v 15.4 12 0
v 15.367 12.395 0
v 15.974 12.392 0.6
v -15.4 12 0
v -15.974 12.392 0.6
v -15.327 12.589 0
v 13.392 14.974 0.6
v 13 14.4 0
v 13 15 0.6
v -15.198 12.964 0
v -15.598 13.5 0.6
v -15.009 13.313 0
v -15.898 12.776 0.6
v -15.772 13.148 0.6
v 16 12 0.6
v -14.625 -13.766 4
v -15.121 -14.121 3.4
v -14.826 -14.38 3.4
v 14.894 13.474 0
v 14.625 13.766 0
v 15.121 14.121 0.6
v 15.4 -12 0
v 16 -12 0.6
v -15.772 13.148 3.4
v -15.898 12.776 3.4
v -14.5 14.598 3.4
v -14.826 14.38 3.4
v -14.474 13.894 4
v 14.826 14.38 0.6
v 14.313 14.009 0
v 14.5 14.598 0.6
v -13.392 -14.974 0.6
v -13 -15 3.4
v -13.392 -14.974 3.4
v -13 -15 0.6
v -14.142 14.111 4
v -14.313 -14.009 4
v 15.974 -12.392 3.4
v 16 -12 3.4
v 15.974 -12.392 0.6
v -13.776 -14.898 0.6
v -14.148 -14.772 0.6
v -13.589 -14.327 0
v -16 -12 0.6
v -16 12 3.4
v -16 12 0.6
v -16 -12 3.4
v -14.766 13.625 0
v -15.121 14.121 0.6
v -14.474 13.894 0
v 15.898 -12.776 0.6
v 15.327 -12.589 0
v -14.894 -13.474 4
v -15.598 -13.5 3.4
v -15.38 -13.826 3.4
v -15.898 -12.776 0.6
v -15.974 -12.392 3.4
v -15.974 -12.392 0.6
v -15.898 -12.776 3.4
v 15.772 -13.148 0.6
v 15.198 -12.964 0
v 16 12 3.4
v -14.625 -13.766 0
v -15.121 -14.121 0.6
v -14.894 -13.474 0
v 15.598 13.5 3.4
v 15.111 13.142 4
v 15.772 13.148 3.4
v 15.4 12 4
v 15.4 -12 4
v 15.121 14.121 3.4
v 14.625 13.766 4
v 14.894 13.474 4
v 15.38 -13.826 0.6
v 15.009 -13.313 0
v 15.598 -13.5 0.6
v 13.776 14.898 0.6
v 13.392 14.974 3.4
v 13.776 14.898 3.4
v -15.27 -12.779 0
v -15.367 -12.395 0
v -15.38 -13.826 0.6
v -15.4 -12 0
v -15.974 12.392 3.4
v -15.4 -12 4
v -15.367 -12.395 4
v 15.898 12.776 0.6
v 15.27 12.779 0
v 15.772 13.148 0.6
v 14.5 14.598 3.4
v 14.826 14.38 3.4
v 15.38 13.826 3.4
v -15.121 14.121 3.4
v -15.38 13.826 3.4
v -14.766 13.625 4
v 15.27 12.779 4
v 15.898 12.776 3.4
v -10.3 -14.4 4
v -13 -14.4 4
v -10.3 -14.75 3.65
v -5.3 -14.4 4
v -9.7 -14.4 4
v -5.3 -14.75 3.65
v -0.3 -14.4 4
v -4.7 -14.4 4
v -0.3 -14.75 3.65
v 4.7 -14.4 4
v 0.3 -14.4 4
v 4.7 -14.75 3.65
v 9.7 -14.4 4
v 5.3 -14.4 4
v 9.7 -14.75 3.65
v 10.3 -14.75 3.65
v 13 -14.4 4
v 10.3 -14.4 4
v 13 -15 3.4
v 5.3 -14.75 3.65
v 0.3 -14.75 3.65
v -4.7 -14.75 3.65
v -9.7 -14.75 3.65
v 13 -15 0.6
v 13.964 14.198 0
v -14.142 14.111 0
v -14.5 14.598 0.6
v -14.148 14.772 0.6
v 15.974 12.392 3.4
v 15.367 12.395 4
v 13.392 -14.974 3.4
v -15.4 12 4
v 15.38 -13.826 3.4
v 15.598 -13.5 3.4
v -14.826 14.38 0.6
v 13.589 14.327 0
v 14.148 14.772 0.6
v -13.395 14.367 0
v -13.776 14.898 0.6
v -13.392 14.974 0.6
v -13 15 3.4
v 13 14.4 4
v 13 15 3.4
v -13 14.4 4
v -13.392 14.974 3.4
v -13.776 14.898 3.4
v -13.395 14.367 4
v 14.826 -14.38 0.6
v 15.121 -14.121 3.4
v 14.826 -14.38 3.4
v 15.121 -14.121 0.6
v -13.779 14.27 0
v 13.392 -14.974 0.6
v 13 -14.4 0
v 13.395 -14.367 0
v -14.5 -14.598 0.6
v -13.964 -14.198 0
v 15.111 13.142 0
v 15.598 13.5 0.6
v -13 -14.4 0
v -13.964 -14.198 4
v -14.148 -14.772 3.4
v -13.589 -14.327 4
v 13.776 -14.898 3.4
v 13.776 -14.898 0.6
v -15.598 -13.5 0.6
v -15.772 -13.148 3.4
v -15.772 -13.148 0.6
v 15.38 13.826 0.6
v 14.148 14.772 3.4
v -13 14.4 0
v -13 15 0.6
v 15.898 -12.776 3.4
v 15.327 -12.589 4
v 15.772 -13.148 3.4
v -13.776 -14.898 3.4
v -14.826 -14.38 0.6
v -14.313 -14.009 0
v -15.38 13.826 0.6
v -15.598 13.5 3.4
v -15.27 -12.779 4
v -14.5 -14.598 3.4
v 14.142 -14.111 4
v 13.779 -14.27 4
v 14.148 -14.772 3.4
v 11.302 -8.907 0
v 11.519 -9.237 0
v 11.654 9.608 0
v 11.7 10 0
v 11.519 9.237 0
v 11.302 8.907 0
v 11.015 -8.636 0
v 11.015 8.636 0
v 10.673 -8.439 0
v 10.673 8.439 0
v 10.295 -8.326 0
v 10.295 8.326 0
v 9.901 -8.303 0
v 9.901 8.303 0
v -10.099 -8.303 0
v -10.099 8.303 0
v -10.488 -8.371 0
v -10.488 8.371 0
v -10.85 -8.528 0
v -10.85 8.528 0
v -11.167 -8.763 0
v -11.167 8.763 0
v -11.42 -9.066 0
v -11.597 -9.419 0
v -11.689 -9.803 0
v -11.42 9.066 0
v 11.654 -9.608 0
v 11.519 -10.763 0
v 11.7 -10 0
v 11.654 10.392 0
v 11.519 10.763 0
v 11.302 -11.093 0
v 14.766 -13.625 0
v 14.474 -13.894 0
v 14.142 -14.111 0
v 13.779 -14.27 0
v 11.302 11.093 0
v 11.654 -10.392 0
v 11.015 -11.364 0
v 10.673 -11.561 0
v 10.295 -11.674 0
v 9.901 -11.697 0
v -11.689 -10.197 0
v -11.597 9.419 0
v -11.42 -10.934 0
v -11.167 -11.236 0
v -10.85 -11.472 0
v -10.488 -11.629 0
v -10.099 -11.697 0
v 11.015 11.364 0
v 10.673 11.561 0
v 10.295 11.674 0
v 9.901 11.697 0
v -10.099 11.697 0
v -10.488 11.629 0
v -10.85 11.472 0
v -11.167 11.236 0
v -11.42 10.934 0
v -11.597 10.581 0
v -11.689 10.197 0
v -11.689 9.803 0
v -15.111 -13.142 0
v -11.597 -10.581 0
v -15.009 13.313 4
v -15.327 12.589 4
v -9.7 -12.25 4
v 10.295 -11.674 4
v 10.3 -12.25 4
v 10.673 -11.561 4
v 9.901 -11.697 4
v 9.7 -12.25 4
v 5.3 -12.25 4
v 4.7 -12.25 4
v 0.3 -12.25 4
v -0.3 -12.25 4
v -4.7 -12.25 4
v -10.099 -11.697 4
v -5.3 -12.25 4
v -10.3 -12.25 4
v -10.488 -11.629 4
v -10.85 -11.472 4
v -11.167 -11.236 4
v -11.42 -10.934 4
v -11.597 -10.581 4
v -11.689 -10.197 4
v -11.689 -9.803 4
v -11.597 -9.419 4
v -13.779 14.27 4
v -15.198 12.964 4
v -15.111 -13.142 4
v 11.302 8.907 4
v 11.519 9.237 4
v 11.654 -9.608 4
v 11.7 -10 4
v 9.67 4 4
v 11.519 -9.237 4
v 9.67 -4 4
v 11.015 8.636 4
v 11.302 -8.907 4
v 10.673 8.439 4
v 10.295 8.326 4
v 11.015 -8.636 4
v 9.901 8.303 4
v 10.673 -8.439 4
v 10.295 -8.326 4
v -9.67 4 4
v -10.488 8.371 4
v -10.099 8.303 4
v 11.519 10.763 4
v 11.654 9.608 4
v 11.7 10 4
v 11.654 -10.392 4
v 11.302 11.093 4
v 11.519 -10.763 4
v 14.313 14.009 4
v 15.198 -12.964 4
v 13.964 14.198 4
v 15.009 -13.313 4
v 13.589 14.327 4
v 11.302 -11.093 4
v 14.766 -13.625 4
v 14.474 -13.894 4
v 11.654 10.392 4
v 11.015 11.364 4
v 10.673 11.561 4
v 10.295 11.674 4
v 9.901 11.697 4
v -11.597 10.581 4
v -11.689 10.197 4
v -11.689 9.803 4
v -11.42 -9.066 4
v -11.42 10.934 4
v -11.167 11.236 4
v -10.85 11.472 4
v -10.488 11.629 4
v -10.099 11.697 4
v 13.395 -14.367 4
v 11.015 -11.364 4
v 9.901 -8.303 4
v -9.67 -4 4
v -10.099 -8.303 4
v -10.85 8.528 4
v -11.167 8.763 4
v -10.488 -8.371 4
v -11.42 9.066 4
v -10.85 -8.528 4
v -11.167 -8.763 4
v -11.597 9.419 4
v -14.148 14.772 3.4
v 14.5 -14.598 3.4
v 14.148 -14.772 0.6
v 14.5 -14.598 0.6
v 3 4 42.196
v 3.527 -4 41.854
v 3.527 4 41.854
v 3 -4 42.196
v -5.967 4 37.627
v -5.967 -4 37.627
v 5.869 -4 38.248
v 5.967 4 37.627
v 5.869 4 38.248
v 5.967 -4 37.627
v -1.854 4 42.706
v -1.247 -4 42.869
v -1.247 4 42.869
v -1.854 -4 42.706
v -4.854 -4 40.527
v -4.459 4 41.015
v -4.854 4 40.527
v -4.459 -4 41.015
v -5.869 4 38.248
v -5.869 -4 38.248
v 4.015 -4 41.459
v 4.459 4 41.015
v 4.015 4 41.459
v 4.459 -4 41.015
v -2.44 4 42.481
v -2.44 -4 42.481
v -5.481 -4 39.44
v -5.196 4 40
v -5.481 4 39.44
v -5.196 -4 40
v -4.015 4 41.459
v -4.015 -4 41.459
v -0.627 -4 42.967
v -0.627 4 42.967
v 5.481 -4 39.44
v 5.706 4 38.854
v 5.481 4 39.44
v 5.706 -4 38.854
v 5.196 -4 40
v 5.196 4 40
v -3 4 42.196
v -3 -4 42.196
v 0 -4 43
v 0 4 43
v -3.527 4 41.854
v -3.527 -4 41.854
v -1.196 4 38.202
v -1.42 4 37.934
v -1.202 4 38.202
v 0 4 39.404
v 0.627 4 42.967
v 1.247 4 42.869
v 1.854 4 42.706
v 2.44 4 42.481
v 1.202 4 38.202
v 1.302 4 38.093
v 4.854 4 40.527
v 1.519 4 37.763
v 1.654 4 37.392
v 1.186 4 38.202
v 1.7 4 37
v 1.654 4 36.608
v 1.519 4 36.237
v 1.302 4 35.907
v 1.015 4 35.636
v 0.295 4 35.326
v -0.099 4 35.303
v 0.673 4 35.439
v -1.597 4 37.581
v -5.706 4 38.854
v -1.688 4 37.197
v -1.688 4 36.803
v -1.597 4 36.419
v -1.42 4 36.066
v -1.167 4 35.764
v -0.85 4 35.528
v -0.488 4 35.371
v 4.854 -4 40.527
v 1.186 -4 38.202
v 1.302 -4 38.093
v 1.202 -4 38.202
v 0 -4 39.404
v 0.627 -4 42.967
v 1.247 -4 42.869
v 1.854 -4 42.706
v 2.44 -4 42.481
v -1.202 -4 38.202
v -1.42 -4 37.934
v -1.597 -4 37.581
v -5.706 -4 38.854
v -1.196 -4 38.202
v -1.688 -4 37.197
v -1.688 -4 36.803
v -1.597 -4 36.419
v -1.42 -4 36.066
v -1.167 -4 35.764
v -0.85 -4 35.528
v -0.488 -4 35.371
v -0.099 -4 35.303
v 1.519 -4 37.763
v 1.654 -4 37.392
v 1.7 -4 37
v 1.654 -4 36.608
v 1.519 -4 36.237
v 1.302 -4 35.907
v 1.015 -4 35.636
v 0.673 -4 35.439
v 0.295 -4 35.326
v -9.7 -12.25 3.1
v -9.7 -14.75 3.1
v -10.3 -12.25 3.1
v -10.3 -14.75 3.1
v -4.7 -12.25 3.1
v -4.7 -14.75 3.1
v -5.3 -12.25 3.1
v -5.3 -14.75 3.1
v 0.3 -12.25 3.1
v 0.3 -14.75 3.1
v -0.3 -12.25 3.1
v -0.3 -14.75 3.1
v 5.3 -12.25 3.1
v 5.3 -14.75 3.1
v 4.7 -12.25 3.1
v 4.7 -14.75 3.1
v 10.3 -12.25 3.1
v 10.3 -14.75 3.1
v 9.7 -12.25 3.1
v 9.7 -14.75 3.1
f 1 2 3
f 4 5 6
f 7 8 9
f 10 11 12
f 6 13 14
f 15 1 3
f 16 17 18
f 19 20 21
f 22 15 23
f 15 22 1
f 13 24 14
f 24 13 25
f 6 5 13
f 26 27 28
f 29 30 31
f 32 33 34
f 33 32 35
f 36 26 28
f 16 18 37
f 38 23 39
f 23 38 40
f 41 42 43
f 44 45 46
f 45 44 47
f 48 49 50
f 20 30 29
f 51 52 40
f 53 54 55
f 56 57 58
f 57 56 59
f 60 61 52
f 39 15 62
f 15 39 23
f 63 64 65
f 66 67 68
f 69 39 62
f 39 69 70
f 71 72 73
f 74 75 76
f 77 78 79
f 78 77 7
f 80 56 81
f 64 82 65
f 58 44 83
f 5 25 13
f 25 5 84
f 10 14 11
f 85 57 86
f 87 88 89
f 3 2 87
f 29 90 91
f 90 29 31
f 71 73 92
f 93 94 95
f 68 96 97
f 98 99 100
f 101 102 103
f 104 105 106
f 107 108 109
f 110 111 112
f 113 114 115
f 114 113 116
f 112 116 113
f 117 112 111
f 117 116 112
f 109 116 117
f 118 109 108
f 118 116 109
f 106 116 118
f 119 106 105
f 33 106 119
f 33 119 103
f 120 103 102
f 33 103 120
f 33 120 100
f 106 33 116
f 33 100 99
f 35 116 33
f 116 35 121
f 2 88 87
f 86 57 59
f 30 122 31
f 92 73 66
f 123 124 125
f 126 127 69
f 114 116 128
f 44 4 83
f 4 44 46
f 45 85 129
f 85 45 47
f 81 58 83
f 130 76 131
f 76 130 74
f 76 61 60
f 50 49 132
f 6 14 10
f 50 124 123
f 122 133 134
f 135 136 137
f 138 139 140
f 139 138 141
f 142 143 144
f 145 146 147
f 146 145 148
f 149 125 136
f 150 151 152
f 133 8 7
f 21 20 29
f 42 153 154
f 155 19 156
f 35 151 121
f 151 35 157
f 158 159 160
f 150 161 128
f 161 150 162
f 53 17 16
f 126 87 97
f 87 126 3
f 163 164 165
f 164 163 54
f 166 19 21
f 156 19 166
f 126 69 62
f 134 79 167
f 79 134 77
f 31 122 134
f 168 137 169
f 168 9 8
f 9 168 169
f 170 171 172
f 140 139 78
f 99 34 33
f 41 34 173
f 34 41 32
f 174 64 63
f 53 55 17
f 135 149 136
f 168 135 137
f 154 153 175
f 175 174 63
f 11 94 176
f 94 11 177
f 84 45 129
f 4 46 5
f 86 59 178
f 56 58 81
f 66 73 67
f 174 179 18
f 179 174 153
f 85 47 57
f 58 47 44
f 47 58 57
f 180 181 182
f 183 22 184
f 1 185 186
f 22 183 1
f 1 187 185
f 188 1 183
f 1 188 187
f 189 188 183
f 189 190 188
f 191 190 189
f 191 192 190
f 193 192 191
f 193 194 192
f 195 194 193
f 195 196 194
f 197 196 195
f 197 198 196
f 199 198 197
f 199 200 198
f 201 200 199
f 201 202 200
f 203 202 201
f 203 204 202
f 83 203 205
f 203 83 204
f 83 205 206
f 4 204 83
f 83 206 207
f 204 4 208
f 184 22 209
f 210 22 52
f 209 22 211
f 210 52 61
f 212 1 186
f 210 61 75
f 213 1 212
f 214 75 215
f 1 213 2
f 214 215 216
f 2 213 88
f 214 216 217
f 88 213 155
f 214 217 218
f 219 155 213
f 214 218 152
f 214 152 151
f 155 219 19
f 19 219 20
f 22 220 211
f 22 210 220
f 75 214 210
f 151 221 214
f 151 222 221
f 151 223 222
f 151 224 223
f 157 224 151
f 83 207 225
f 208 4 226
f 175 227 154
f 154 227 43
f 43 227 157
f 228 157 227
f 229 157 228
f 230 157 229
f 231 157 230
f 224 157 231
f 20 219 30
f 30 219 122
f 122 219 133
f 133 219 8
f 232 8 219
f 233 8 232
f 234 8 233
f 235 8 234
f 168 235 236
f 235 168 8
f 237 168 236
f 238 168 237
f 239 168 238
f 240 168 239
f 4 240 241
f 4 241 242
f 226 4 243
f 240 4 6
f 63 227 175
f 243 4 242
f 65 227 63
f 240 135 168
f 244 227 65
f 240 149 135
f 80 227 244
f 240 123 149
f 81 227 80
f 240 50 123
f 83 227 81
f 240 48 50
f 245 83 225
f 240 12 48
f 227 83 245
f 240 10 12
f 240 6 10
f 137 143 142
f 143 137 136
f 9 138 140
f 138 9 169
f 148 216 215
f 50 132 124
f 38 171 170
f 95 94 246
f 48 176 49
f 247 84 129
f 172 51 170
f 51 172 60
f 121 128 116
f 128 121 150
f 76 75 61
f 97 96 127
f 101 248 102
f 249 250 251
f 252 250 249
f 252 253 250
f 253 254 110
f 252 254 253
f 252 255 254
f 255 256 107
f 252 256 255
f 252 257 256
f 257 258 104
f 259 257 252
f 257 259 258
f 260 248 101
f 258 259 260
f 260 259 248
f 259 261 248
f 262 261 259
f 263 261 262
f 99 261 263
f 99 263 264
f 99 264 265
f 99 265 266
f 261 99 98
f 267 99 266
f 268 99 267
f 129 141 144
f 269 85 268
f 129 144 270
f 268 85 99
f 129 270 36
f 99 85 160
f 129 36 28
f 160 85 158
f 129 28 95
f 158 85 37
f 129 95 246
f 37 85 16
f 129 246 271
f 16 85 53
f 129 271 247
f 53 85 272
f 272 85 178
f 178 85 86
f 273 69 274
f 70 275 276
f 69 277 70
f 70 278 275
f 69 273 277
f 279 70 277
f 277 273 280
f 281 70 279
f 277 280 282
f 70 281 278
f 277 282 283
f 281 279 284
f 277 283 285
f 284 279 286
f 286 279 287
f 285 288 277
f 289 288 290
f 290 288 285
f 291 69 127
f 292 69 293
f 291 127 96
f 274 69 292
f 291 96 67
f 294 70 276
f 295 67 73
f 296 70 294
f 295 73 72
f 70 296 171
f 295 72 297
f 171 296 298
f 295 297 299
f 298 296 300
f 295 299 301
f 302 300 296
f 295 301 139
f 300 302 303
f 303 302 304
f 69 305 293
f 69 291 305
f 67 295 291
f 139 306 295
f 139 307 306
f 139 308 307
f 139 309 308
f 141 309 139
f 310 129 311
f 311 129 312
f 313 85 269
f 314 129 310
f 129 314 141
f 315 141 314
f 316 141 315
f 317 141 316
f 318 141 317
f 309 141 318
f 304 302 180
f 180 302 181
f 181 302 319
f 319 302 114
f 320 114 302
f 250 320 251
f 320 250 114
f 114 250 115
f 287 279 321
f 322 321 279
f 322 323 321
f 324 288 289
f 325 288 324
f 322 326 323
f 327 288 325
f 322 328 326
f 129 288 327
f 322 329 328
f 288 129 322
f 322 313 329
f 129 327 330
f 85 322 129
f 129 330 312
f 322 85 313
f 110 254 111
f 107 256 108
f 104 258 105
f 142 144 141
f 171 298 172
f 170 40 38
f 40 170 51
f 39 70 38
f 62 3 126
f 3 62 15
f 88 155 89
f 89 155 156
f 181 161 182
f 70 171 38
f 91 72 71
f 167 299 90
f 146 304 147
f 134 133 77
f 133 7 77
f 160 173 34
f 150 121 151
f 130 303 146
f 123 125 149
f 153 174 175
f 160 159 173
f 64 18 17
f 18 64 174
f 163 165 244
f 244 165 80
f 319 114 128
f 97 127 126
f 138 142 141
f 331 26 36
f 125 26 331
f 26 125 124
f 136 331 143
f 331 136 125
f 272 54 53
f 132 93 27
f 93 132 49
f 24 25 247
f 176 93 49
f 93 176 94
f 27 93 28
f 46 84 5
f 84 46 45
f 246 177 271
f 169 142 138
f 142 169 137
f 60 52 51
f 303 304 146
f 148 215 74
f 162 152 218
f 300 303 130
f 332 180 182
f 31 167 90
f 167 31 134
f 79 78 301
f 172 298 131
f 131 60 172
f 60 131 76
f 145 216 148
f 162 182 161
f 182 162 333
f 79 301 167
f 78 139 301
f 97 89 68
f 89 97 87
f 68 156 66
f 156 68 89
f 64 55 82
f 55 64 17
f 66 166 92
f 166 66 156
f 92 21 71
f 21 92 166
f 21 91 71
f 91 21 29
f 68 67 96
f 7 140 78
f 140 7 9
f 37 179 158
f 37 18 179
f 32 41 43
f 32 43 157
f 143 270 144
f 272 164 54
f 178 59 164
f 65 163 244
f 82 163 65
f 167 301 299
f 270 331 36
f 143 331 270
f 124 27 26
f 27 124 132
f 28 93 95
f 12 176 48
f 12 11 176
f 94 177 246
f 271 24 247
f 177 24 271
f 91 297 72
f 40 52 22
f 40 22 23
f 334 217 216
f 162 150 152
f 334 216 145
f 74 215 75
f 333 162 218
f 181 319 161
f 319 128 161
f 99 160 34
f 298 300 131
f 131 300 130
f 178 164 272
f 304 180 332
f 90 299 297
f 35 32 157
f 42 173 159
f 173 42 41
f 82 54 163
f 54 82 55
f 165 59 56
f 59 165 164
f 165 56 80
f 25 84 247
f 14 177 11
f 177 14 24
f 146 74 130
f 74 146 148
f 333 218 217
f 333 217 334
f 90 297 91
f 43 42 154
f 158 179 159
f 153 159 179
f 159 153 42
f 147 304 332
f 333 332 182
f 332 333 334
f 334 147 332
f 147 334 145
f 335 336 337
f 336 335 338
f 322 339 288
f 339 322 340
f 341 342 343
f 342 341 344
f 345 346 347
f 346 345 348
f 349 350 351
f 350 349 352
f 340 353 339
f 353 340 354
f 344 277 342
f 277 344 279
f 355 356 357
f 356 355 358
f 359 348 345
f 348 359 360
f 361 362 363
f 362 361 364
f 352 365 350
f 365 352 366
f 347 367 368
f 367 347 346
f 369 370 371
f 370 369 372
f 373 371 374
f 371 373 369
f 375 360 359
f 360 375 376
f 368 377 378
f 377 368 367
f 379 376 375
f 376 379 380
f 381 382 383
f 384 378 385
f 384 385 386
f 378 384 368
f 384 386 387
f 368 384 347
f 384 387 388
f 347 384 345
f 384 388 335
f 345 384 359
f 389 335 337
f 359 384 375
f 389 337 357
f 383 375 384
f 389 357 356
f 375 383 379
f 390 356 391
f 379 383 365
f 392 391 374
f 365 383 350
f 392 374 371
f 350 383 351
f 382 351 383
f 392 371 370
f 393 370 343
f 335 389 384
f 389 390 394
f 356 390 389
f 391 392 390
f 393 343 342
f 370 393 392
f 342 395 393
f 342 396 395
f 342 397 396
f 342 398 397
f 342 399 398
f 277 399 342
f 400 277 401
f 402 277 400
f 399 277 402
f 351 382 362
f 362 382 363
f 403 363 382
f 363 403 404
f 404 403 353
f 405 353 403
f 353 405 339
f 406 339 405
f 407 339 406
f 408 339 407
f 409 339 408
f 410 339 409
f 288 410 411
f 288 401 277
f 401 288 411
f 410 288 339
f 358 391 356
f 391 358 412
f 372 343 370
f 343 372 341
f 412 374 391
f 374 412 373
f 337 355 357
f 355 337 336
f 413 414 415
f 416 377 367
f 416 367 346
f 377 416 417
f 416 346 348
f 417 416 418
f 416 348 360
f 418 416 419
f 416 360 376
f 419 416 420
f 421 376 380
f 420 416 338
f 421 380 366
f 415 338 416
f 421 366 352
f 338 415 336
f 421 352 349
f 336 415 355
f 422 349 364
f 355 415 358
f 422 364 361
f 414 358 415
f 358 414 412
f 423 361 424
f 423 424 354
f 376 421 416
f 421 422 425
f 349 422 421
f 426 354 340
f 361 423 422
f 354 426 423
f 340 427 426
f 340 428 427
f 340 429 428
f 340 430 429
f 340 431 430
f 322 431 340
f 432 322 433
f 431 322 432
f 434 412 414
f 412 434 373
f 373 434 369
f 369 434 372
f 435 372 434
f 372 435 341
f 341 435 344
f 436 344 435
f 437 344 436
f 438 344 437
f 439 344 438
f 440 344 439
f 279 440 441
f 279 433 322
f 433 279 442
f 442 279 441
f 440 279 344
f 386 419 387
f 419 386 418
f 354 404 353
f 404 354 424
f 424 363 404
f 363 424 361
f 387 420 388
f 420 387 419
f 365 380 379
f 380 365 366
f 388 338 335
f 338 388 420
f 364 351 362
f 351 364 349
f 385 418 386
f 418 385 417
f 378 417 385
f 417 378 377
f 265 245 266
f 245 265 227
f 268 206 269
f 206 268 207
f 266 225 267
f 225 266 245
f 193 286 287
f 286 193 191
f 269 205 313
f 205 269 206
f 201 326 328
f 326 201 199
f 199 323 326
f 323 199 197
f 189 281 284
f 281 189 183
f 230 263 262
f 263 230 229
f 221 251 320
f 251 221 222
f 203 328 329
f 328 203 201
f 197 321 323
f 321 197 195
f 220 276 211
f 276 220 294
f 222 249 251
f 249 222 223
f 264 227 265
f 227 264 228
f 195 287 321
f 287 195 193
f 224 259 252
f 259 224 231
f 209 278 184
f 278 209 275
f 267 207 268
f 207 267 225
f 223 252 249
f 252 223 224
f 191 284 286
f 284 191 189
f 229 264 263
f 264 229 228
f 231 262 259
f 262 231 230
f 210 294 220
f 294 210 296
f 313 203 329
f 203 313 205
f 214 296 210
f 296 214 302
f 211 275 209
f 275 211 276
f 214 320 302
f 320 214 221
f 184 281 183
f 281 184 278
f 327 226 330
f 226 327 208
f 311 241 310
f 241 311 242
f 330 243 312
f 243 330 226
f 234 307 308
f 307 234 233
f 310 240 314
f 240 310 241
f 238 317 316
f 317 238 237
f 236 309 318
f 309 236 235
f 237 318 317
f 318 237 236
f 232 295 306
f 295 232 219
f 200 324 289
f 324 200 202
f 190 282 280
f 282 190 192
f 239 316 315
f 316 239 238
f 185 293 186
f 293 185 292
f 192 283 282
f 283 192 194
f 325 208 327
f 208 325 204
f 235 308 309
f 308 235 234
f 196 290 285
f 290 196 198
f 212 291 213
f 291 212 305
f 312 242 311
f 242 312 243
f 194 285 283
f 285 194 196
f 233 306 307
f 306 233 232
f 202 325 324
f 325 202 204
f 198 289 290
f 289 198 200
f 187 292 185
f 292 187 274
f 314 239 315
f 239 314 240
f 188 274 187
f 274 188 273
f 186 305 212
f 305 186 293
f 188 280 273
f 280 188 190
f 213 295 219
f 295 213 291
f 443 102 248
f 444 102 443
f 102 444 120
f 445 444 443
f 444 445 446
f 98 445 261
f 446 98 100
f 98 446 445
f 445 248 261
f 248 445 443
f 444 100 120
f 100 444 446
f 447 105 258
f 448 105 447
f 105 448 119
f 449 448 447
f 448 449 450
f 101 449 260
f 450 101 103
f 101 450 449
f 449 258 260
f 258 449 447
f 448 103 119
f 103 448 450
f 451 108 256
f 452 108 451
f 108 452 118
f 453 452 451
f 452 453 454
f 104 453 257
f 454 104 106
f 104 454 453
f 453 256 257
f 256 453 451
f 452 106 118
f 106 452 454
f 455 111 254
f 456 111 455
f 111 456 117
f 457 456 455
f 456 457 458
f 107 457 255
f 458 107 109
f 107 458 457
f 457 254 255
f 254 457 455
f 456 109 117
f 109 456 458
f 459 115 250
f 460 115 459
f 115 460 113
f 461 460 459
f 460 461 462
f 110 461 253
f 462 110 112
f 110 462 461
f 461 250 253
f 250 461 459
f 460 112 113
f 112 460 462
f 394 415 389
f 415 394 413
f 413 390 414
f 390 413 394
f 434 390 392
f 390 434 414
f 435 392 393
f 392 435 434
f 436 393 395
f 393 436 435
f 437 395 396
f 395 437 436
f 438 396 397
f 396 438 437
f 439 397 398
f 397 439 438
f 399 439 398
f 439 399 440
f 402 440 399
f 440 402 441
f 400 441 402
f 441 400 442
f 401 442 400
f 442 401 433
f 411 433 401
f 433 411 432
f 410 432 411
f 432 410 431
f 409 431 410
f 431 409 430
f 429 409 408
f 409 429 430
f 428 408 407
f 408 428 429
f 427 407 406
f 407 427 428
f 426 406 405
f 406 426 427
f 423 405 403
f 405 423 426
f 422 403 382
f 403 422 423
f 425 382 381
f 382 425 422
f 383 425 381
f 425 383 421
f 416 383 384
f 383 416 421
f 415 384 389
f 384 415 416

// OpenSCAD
// file: ../../COMMON/stem_core.scad
// =====================================================================
//  stem_core.scad — shared geometry helpers for every STEM_KIT part.
// =====================================================================
include <../PARAMETERS/config.scad>
// =====================================================================

// ---------- rounded / chamfered prisms --------------------------------

// Rounded rectangle (2D), centred.
module rrect(size, r) {
    rr = min(r, min(size[0], size[1]) / 2 - 0.01);
    offset(r = rr) square([size[0] - 2 * rr, size[1] - 2 * rr], center = true);
}

// Box with rounded vertical edges, chamfered bottom edge (elephant-foot
// relief) and rounded-ish (chamfered) top edge. Sits on z = 0, centred XY.
module rbox(size, r = 2, top = edge_r, bottom = chamfer) {
    h = size[2];
    hull() {
        linear_extrude(0.01) rrect([size[0] - 2 * bottom, size[1] - 2 * bottom], max(r - bottom, 0.1));
        translate([0, 0, bottom]) linear_extrude(h - bottom - top) rrect([size[0], size[1]], r);
        translate([0, 0, h - 0.01]) linear_extrude(0.01) rrect([size[0] - 2 * top, size[1] - 2 * top], max(r - top, 0.1));
    }
}

// Cylinder with chamfered/rounded top and bottom edges (safe hubs, knobs).
module rcyl(d, h, top = edge_r, bottom = chamfer) {
    rotate_extrude() polygon([
        [0, 0], [d / 2 - bottom, 0], [d / 2, bottom],
        [d / 2, h - top], [d / 2 - top, h], [0, h]
    ]);
}

// Stadium (slot / rounded bar) 2D between two points on the X axis.
module stadium2d(len, w) {
    hull() { circle(d = w); translate([len, 0]) circle(d = w); }
}

// ---------- holes ------------------------------------------------------

// Vertical through hole with small top/bottom chamfers.
module vhole(d = grid_hole_d, h = 50, ch = 0.4) {
    translate([0, 0, -h / 2]) cylinder(d = d, h = h);
}

// Horizontal hole along +Y, printable without supports (teardrop tip up).
module teardrop_y(d, len, center = true) {
    translate([0, center ? -len / 2 : 0, 0]) rotate([-90, 0, 0])
        linear_extrude(len) teardrop2d(d);
}
module teardrop_x(d, len, center = true) {
    translate([center ? -len / 2 : 0, 0, 0]) rotate([0, 90, 0]) rotate([0, 0, -90])
        linear_extrude(len) teardrop2d(d);
}
// 2D teardrop: circle + 45° roof pointing "up" in the final part (+Z).
// After rotate([-90,0,0]) local +Y becomes -Z, so the roof points to -Y here.
module teardrop2d(d) {
    r = d / 2;
    union() {
        circle(d = d);
        polygon([[-r * sqrt(2) / 2, -r * sqrt(2) / 2], [0, -r * sqrt(2)], [r * sqrt(2) / 2, -r * sqrt(2) / 2]]);
    }
}

// Hex nut pocket (flat sides parallel to X), opening at z = 0 going +Z.
module nut_pocket(depth = nut_pocket_depth, af = nut_pocket_af) {
    cylinder(d = af / cos(30), h = depth, $fn = 6);
}

// Side-entry nut slot: nut plane is XY, slot opens toward +dir (X).
// Centred on the screw axis (Z), slot height nut_slot_t, runs out `len`.
module nut_slot_x(len = 10, af = nut_pocket_af, t = nut_slot_t) {
    translate([0, 0, -t / 2]) hull() {
        cylinder(d = af / cos(30), h = t, $fn = 6);
        translate([len, 0, 0]) cylinder(d = af / cos(30), h = t, $fn = 6);
    }
}

// Counterbored clearance hole from top surface at height `top` downward.
module cbore(top, depth, d = counterbore_d) {
    translate([0, 0, top - depth]) cylinder(d = d, h = depth + 20);
    translate([0, 0, -20]) cylinder(d = grid_hole_d, h = top + 40);
}

// Grid of vertical holes: nx x ny, pitch grid_pitch, first hole centred
// at `origin` (XY). Used by every plate.
module grid_holes(nx, ny, origin = [0, 0], h = 100, d = grid_hole_d) {
    for (i = [0 : nx - 1], j = [0 : ny - 1])
        translate([origin[0] + i * grid_pitch, origin[1] + j * grid_pitch, 0]) vhole(d, h);
}

// Slot (for adjustable mounting) along X, length = travel.
module slot_x(travel, d = grid_hole_d, h = 100) {
    translate([-travel / 2, 0, -h / 2]) linear_extrude(h) stadium2d(travel, d);
}

// ---------- shaft bores ------------------------------------------------

// 2D bore profile: round, or D if shaft_flat > 0.
module bore2d(d) {
    if (shaft_flat > 0)
        intersection() { circle(d = d); translate([-d, -d / 2]) square([2 * d, d - shaft_flat + (d - shaft_diameter) / 2]); }
    else circle(d = d);
}

// Standard HUB: cylinder hub_d x hub_h standing on z = z0, with bore,
// radial M3 set screw at mid height and a captive-nut slot from the top.
// Call inside difference() for the cut-outs: hub_body()/hub_cuts().
module hub_body(z0, d = hub_d, h = hub_h) {
    translate([0, 0, z0]) rcyl(d, h, top = 0.8, bottom = 0);
}
module hub_cuts(z0, total_h, d = hub_d, h = hub_h, bore = shaft_fixed_bore, set_screw = true, screw_angle = 0) {
    // bore through everything
    translate([0, 0, -1]) linear_extrude(total_h + 2) bore2d(bore);
    // entry chamfer on bore
    translate([0, 0, total_h - 0.6]) cylinder(d1 = bore, d2 = bore + 1.2, h = 0.61);
    translate([0, 0, -0.01]) cylinder(d1 = bore + 1.2, d2 = bore, h = 0.6);
    if (set_screw) rotate([0, 0, screw_angle]) {
        zs = z0 + h / 2;
        // radial screw hole (teardrop, prints without support)
        translate([0, 0, zs]) teardrop_x(screw_clear_d, d, center = false);
        // captive nut slot, entered from the hub top face
        nr = bore / 2 + (d / 2 - bore / 2) / 2;       // radial position of nut
        translate([nr - nut_slot_t / 2, -nut_pocket_af / 2, zs - nut_pocket_af / cos(30) / 2 - 0.1])
            cube([nut_slot_t, nut_pocket_af, total_h + 10]);   // open to the hub top face
    }
}

// ---------- labels -----------------------------------------------------

// Engrave text into a top surface at height z (depth 0.6 = 3 layers).
module engrave(txt, size = 5, z = 0, depth = 0.6, halign = "center") {
    translate([0, 0, z - depth]) linear_extrude(depth + 1)
        text(txt, size = size, font = "Liberation Sans:style=Bold", halign = halign, valign = "center");
}

// ---------- misc -------------------------------------------------------

function grid_snap(v) = ceil(v / grid_pitch) * grid_pitch;
// file: ../../COMMON/mounts/axle_mount.scad
// =====================================================================
//  PART: axle mount — COMMON/mounts
//  Low-cost plain-bore pillow block for 3 mm axles (vehicles, idlers).
//  Axis `h` above the surface over a grid line; screws at (0, ±10).
//  slot > 0 turns the holes into slots across the shaft (X) so the shaft
//  can be slid sideways — belt tensioning, or deliberately bad gear mesh
//  experiments.
//  Print: standing on its foot. No supports (teardrop bore).
// =====================================================================
include <../../PARAMETERS/config.scad>
use <../stem_core.scad>

axle_h = axis_height;
axle_slot = 0;
axle_mount(axle_h, axle_slot);

module axle_mount(h = axis_height, slot = 0) {
    W  = 12;              // upright width (X)
    th = 8;               // upright thickness (Y) = bushing length
    t  = foot_thickness;
    fw = W + slot;
    difference() {
        union() {
            rbox([fw, 3 * grid_pitch, t], r = 3, top = 0.6);
            translate([0, th / 2, 0]) rotate([90, 0, 0]) linear_extrude(th)
                hull() {
                    translate([-W / 2 - (h > 25 ? 4 : 0), 0]) square([W + (h > 25 ? 8 : 0), 1]);
                    translate([0, h]) circle(d = W);
                }
        }
        translate([0, 0, h]) teardrop_y(shaft_free_bore, 30);
        for (y = [-grid_pitch, grid_pitch]) translate([0, y, 0])
            if (slot > 0) slot_x(slot, grid_hole_d, 20); else vhole(grid_hole_d, 20);
        // slot travel marks (every 5 mm) engraved on the foot
        if (slot > 0) for (k = [-floor(slot / 10) : floor(slot / 10)])
            translate([k * 5, -1.5 * grid_pitch + 1.5, t - 0.4]) cube([0.6, 2.5, 1], center = true);
    }
}
// file: ../../PARAMETERS/config.scad
// =====================================================================
//  STEM_KIT — CENTRAL PARAMETER FILE  ("ForgeGrid" mechanical standard)
// ---------------------------------------------------------------------
//  Every part in the library includes this file. Change a value here,
//  run `python3 tools/build.py`, and the whole library regenerates.
//  All dimensions in millimetres.
// =====================================================================

// ---------------------------------------------------------------------
// 1. PRINTER / PROCESS
// ---------------------------------------------------------------------
nozzle          = 0.4;
layer_height    = 0.2;
tolerance       = 0.2;    // sliding clearance per side (tune with STEM_TOLERANCE_TEST)
press_allow     = 0.05;   // extra for press fits (bores that should grip)
min_wall        = 1.6;    // never go below this
wall_thickness  = 2.4;    // preferred wall (6 perimeters @ 0.4)
edge_r          = 1.0;    // rounding of exposed edges (child safety)
chamfer         = 0.6;    // bottom-edge chamfer (elephant-foot relief)

$fa = 6;                  // facet angle
$fs = 0.4;                // facet size

// ---------------------------------------------------------------------
// 2. GRID  (the heart of the ecosystem)
// ---------------------------------------------------------------------
//  Holes sit on a 10 mm lattice, 5 mm in from every plate edge, so
//  plates placed side by side keep one continuous lattice.
grid_pitch            = 10;
plate_size            = 100;   // universal base plate (square)
plate_thickness       = 6;     // base plates, rails, chassis
foot_thickness        = 4;     // flange / foot of every mount
//  => standard joint: 4 mm foot + 6 mm plate = M3 x 10 screw, nut in
//     the hex pocket under the plate. One screw length does 90 % of joints.

// ---------------------------------------------------------------------
// 3. FASTENERS (M3 everywhere: one screwdriver, one nut)
// ---------------------------------------------------------------------
screw_size            = 3;
screw_clear_d         = 3.4;   // clearance hole (also the grid hole)
grid_hole_d           = screw_clear_d;
screw_tap_d           = 2.6;   // hole a screw self-taps into
screw_head_d          = 5.7;   // ISO 7380 BUTTON head = kit standard (low, rounded, child-safe)
screw_head_h          = 1.65;
counterbore_d         = 6.4;
nut_af                = 5.5;   // M3 nut across flats
nut_thick             = 2.4;
nut_pocket_af         = nut_af + 0.35;
nut_pocket_depth      = 3.0;   // pocket under plates (nut sits flush)
nut_slot_t            = nut_thick + 0.4;  // side-entry slot thickness
set_screw_len         = 6;     // M3 x 6 grub screw for hubs

// ---------------------------------------------------------------------
// 4. SHAFTS
// ---------------------------------------------------------------------
//  Default: 3 mm steel rod (silver steel / stainless). Printed shafts
//  are provided for light-duty use. Alternative systems: set
//  shaft_diameter = 4 or 5 and rebuild.
shaft_diameter        = 3;
shaft_flat            = 0;     // >0 : D-shaft, flat depth (e.g. 0.5)
shaft_fixed_bore      = shaft_diameter + 0.15;  // hub bore (set-screw locked)
shaft_free_bore       = shaft_diameter + 0.4;   // free-spinning bore / bushing
shaft_lengths         = [40, 60, 80, 100, 120];

//  Horizontal shafts: all pillow blocks, motor mounts and axle mounts
//  put their axis at this height above the surface they are bolted to,
//  so any two of them on the grid are automatically coaxial/parallel.
axis_height           = 17;
axis_height_high      = 37;    // = axis_height + 2 pitches (pulleys, big wheels)

// ---------------------------------------------------------------------
// 5. BEARINGS
// ---------------------------------------------------------------------
bearing_size          = [5, 16, 5];   // 625 : bore, OD, width (default housing)
bearing_small         = [3, 10, 4];   // 623 : fits 3 mm shafts via adapter ring
bearing_pocket_d      = bearing_size[1] + 0.15;

// ---------------------------------------------------------------------
// 6. GEARS
// ---------------------------------------------------------------------
//  Module 2 + tooth counts that are multiples of 10  =>  centre distance
//  = (z1+z2) mm is ALWAYS a multiple of 10  =>  ANY two gears mesh when
//  their shafts sit in grid holes. (3-4-5 diagonals also work: 50 mm.)
gear_module           = 2;
gear_pressure_angle   = 20;
gear_width            = 6;
gear_backlash         = 0.30;  // total circular backlash per mesh
gear_clearance_k      = 0.25;  // root clearance = k * module
gear_teeth_set        = [10, 20, 30, 40];
//  Gearbox frame: two frame plates, outer faces 60 mm apart (on grid),
//  48 mm gap = three gear levels (A, M, B).
frame_gap             = 48;
hub_d                 = 14;
hub_h                 = 7;

// ---------------------------------------------------------------------
// 7. WHEELS / PULLEYS
// ---------------------------------------------------------------------
wheel_diameter        = 60;
wheel_width           = 10;
axle_diameter         = shaft_diameter;
oring_cs              = 3.0;    // O-ring cross-section used as tyre / belt
belt_cs               = 2.5;    // O-ring / round-belt cord for pulleys
pulley_sizes          = [20, 40, 60];  // effective (belt-line) diameters

// ---------------------------------------------------------------------
// 8. MOTORS (130-size toy / solar motor is the default)
// ---------------------------------------------------------------------
motor_size            = [20.2, 15.2, 25.2]; // body dia, across-flats, length
motor_d               = motor_size[0];
motor_flat            = motor_size[1];
motor_len             = motor_size[2];
motor_boss_d          = 6.2;
motor_boss_h          = 1.6;
motor_shaft_d         = 2.0;
motor_shaft_len       = 8.5;   // beyond boss
motor_shaft_bore      = 1.9;   // press fit onto 2 mm motor shaft

// ---------------------------------------------------------------------
// 9. SOLAR PANEL (bought, not printed) — frame is parametric
// ---------------------------------------------------------------------
solar_panel_size      = [110, 69, 3.0];  // 5 V 1 W epoxy panel (common)
solar_panel_clear     = 0.6;

// ---------------------------------------------------------------------
// 10. ELECTRONICS
// ---------------------------------------------------------------------
mounting_hole_spacing = grid_pitch;   // everything bolts to the grid
electronics_slot_w    = screw_clear_d;
led_hole_d            = 5.1;
buzzer_hole_d         = 12.2;

// ---------------------------------------------------------------------
// 11. SAFETY LIMITS (checked by tools/qc.py)
// ---------------------------------------------------------------------
max_part_voltage      = 12;    // nothing in this kit uses more
min_rim_thickness     = 2.0;   // blades/links: no edge thinner than this
finger_gap_max        = 6;     // guard openings smaller than a child's finger
// main file
// =====================================================================
//  PART: belt pulley mount (tensioner) — MECHANICAL/pulley
//  Tall axle mount (axis at axis_height_high = 37 mm, so a Ø60 pulley
//  clears the plate) with 20 mm slots across the shaft: slide it to
//  tension the belt, lock with thumb nuts under the plate or M3 x 10.
//  Same module as the common axle mount — just different parameters.
//  Print: standing on its foot. No supports.
// =====================================================================
include <../../PARAMETERS/config.scad>
use <../../COMMON/mounts/axle_mount.scad>

axle_mount(axis_height_high, 2 * grid_pitch);
